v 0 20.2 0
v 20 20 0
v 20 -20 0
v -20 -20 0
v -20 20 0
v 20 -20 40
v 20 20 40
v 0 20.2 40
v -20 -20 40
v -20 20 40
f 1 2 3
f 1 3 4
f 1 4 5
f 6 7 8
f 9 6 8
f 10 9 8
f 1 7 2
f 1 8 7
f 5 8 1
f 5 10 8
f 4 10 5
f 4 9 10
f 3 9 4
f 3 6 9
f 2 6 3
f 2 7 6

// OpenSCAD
// Openscad script for 40mm PA test cube with a 'corner' at the rear.
bump = 0.2;
linear_extrude(40)
  polygon(points = [[-20, -20],  [20, -20], [20, 20], 
                    [0, 20+bump], [-20, 20],[-20, -20]]);
